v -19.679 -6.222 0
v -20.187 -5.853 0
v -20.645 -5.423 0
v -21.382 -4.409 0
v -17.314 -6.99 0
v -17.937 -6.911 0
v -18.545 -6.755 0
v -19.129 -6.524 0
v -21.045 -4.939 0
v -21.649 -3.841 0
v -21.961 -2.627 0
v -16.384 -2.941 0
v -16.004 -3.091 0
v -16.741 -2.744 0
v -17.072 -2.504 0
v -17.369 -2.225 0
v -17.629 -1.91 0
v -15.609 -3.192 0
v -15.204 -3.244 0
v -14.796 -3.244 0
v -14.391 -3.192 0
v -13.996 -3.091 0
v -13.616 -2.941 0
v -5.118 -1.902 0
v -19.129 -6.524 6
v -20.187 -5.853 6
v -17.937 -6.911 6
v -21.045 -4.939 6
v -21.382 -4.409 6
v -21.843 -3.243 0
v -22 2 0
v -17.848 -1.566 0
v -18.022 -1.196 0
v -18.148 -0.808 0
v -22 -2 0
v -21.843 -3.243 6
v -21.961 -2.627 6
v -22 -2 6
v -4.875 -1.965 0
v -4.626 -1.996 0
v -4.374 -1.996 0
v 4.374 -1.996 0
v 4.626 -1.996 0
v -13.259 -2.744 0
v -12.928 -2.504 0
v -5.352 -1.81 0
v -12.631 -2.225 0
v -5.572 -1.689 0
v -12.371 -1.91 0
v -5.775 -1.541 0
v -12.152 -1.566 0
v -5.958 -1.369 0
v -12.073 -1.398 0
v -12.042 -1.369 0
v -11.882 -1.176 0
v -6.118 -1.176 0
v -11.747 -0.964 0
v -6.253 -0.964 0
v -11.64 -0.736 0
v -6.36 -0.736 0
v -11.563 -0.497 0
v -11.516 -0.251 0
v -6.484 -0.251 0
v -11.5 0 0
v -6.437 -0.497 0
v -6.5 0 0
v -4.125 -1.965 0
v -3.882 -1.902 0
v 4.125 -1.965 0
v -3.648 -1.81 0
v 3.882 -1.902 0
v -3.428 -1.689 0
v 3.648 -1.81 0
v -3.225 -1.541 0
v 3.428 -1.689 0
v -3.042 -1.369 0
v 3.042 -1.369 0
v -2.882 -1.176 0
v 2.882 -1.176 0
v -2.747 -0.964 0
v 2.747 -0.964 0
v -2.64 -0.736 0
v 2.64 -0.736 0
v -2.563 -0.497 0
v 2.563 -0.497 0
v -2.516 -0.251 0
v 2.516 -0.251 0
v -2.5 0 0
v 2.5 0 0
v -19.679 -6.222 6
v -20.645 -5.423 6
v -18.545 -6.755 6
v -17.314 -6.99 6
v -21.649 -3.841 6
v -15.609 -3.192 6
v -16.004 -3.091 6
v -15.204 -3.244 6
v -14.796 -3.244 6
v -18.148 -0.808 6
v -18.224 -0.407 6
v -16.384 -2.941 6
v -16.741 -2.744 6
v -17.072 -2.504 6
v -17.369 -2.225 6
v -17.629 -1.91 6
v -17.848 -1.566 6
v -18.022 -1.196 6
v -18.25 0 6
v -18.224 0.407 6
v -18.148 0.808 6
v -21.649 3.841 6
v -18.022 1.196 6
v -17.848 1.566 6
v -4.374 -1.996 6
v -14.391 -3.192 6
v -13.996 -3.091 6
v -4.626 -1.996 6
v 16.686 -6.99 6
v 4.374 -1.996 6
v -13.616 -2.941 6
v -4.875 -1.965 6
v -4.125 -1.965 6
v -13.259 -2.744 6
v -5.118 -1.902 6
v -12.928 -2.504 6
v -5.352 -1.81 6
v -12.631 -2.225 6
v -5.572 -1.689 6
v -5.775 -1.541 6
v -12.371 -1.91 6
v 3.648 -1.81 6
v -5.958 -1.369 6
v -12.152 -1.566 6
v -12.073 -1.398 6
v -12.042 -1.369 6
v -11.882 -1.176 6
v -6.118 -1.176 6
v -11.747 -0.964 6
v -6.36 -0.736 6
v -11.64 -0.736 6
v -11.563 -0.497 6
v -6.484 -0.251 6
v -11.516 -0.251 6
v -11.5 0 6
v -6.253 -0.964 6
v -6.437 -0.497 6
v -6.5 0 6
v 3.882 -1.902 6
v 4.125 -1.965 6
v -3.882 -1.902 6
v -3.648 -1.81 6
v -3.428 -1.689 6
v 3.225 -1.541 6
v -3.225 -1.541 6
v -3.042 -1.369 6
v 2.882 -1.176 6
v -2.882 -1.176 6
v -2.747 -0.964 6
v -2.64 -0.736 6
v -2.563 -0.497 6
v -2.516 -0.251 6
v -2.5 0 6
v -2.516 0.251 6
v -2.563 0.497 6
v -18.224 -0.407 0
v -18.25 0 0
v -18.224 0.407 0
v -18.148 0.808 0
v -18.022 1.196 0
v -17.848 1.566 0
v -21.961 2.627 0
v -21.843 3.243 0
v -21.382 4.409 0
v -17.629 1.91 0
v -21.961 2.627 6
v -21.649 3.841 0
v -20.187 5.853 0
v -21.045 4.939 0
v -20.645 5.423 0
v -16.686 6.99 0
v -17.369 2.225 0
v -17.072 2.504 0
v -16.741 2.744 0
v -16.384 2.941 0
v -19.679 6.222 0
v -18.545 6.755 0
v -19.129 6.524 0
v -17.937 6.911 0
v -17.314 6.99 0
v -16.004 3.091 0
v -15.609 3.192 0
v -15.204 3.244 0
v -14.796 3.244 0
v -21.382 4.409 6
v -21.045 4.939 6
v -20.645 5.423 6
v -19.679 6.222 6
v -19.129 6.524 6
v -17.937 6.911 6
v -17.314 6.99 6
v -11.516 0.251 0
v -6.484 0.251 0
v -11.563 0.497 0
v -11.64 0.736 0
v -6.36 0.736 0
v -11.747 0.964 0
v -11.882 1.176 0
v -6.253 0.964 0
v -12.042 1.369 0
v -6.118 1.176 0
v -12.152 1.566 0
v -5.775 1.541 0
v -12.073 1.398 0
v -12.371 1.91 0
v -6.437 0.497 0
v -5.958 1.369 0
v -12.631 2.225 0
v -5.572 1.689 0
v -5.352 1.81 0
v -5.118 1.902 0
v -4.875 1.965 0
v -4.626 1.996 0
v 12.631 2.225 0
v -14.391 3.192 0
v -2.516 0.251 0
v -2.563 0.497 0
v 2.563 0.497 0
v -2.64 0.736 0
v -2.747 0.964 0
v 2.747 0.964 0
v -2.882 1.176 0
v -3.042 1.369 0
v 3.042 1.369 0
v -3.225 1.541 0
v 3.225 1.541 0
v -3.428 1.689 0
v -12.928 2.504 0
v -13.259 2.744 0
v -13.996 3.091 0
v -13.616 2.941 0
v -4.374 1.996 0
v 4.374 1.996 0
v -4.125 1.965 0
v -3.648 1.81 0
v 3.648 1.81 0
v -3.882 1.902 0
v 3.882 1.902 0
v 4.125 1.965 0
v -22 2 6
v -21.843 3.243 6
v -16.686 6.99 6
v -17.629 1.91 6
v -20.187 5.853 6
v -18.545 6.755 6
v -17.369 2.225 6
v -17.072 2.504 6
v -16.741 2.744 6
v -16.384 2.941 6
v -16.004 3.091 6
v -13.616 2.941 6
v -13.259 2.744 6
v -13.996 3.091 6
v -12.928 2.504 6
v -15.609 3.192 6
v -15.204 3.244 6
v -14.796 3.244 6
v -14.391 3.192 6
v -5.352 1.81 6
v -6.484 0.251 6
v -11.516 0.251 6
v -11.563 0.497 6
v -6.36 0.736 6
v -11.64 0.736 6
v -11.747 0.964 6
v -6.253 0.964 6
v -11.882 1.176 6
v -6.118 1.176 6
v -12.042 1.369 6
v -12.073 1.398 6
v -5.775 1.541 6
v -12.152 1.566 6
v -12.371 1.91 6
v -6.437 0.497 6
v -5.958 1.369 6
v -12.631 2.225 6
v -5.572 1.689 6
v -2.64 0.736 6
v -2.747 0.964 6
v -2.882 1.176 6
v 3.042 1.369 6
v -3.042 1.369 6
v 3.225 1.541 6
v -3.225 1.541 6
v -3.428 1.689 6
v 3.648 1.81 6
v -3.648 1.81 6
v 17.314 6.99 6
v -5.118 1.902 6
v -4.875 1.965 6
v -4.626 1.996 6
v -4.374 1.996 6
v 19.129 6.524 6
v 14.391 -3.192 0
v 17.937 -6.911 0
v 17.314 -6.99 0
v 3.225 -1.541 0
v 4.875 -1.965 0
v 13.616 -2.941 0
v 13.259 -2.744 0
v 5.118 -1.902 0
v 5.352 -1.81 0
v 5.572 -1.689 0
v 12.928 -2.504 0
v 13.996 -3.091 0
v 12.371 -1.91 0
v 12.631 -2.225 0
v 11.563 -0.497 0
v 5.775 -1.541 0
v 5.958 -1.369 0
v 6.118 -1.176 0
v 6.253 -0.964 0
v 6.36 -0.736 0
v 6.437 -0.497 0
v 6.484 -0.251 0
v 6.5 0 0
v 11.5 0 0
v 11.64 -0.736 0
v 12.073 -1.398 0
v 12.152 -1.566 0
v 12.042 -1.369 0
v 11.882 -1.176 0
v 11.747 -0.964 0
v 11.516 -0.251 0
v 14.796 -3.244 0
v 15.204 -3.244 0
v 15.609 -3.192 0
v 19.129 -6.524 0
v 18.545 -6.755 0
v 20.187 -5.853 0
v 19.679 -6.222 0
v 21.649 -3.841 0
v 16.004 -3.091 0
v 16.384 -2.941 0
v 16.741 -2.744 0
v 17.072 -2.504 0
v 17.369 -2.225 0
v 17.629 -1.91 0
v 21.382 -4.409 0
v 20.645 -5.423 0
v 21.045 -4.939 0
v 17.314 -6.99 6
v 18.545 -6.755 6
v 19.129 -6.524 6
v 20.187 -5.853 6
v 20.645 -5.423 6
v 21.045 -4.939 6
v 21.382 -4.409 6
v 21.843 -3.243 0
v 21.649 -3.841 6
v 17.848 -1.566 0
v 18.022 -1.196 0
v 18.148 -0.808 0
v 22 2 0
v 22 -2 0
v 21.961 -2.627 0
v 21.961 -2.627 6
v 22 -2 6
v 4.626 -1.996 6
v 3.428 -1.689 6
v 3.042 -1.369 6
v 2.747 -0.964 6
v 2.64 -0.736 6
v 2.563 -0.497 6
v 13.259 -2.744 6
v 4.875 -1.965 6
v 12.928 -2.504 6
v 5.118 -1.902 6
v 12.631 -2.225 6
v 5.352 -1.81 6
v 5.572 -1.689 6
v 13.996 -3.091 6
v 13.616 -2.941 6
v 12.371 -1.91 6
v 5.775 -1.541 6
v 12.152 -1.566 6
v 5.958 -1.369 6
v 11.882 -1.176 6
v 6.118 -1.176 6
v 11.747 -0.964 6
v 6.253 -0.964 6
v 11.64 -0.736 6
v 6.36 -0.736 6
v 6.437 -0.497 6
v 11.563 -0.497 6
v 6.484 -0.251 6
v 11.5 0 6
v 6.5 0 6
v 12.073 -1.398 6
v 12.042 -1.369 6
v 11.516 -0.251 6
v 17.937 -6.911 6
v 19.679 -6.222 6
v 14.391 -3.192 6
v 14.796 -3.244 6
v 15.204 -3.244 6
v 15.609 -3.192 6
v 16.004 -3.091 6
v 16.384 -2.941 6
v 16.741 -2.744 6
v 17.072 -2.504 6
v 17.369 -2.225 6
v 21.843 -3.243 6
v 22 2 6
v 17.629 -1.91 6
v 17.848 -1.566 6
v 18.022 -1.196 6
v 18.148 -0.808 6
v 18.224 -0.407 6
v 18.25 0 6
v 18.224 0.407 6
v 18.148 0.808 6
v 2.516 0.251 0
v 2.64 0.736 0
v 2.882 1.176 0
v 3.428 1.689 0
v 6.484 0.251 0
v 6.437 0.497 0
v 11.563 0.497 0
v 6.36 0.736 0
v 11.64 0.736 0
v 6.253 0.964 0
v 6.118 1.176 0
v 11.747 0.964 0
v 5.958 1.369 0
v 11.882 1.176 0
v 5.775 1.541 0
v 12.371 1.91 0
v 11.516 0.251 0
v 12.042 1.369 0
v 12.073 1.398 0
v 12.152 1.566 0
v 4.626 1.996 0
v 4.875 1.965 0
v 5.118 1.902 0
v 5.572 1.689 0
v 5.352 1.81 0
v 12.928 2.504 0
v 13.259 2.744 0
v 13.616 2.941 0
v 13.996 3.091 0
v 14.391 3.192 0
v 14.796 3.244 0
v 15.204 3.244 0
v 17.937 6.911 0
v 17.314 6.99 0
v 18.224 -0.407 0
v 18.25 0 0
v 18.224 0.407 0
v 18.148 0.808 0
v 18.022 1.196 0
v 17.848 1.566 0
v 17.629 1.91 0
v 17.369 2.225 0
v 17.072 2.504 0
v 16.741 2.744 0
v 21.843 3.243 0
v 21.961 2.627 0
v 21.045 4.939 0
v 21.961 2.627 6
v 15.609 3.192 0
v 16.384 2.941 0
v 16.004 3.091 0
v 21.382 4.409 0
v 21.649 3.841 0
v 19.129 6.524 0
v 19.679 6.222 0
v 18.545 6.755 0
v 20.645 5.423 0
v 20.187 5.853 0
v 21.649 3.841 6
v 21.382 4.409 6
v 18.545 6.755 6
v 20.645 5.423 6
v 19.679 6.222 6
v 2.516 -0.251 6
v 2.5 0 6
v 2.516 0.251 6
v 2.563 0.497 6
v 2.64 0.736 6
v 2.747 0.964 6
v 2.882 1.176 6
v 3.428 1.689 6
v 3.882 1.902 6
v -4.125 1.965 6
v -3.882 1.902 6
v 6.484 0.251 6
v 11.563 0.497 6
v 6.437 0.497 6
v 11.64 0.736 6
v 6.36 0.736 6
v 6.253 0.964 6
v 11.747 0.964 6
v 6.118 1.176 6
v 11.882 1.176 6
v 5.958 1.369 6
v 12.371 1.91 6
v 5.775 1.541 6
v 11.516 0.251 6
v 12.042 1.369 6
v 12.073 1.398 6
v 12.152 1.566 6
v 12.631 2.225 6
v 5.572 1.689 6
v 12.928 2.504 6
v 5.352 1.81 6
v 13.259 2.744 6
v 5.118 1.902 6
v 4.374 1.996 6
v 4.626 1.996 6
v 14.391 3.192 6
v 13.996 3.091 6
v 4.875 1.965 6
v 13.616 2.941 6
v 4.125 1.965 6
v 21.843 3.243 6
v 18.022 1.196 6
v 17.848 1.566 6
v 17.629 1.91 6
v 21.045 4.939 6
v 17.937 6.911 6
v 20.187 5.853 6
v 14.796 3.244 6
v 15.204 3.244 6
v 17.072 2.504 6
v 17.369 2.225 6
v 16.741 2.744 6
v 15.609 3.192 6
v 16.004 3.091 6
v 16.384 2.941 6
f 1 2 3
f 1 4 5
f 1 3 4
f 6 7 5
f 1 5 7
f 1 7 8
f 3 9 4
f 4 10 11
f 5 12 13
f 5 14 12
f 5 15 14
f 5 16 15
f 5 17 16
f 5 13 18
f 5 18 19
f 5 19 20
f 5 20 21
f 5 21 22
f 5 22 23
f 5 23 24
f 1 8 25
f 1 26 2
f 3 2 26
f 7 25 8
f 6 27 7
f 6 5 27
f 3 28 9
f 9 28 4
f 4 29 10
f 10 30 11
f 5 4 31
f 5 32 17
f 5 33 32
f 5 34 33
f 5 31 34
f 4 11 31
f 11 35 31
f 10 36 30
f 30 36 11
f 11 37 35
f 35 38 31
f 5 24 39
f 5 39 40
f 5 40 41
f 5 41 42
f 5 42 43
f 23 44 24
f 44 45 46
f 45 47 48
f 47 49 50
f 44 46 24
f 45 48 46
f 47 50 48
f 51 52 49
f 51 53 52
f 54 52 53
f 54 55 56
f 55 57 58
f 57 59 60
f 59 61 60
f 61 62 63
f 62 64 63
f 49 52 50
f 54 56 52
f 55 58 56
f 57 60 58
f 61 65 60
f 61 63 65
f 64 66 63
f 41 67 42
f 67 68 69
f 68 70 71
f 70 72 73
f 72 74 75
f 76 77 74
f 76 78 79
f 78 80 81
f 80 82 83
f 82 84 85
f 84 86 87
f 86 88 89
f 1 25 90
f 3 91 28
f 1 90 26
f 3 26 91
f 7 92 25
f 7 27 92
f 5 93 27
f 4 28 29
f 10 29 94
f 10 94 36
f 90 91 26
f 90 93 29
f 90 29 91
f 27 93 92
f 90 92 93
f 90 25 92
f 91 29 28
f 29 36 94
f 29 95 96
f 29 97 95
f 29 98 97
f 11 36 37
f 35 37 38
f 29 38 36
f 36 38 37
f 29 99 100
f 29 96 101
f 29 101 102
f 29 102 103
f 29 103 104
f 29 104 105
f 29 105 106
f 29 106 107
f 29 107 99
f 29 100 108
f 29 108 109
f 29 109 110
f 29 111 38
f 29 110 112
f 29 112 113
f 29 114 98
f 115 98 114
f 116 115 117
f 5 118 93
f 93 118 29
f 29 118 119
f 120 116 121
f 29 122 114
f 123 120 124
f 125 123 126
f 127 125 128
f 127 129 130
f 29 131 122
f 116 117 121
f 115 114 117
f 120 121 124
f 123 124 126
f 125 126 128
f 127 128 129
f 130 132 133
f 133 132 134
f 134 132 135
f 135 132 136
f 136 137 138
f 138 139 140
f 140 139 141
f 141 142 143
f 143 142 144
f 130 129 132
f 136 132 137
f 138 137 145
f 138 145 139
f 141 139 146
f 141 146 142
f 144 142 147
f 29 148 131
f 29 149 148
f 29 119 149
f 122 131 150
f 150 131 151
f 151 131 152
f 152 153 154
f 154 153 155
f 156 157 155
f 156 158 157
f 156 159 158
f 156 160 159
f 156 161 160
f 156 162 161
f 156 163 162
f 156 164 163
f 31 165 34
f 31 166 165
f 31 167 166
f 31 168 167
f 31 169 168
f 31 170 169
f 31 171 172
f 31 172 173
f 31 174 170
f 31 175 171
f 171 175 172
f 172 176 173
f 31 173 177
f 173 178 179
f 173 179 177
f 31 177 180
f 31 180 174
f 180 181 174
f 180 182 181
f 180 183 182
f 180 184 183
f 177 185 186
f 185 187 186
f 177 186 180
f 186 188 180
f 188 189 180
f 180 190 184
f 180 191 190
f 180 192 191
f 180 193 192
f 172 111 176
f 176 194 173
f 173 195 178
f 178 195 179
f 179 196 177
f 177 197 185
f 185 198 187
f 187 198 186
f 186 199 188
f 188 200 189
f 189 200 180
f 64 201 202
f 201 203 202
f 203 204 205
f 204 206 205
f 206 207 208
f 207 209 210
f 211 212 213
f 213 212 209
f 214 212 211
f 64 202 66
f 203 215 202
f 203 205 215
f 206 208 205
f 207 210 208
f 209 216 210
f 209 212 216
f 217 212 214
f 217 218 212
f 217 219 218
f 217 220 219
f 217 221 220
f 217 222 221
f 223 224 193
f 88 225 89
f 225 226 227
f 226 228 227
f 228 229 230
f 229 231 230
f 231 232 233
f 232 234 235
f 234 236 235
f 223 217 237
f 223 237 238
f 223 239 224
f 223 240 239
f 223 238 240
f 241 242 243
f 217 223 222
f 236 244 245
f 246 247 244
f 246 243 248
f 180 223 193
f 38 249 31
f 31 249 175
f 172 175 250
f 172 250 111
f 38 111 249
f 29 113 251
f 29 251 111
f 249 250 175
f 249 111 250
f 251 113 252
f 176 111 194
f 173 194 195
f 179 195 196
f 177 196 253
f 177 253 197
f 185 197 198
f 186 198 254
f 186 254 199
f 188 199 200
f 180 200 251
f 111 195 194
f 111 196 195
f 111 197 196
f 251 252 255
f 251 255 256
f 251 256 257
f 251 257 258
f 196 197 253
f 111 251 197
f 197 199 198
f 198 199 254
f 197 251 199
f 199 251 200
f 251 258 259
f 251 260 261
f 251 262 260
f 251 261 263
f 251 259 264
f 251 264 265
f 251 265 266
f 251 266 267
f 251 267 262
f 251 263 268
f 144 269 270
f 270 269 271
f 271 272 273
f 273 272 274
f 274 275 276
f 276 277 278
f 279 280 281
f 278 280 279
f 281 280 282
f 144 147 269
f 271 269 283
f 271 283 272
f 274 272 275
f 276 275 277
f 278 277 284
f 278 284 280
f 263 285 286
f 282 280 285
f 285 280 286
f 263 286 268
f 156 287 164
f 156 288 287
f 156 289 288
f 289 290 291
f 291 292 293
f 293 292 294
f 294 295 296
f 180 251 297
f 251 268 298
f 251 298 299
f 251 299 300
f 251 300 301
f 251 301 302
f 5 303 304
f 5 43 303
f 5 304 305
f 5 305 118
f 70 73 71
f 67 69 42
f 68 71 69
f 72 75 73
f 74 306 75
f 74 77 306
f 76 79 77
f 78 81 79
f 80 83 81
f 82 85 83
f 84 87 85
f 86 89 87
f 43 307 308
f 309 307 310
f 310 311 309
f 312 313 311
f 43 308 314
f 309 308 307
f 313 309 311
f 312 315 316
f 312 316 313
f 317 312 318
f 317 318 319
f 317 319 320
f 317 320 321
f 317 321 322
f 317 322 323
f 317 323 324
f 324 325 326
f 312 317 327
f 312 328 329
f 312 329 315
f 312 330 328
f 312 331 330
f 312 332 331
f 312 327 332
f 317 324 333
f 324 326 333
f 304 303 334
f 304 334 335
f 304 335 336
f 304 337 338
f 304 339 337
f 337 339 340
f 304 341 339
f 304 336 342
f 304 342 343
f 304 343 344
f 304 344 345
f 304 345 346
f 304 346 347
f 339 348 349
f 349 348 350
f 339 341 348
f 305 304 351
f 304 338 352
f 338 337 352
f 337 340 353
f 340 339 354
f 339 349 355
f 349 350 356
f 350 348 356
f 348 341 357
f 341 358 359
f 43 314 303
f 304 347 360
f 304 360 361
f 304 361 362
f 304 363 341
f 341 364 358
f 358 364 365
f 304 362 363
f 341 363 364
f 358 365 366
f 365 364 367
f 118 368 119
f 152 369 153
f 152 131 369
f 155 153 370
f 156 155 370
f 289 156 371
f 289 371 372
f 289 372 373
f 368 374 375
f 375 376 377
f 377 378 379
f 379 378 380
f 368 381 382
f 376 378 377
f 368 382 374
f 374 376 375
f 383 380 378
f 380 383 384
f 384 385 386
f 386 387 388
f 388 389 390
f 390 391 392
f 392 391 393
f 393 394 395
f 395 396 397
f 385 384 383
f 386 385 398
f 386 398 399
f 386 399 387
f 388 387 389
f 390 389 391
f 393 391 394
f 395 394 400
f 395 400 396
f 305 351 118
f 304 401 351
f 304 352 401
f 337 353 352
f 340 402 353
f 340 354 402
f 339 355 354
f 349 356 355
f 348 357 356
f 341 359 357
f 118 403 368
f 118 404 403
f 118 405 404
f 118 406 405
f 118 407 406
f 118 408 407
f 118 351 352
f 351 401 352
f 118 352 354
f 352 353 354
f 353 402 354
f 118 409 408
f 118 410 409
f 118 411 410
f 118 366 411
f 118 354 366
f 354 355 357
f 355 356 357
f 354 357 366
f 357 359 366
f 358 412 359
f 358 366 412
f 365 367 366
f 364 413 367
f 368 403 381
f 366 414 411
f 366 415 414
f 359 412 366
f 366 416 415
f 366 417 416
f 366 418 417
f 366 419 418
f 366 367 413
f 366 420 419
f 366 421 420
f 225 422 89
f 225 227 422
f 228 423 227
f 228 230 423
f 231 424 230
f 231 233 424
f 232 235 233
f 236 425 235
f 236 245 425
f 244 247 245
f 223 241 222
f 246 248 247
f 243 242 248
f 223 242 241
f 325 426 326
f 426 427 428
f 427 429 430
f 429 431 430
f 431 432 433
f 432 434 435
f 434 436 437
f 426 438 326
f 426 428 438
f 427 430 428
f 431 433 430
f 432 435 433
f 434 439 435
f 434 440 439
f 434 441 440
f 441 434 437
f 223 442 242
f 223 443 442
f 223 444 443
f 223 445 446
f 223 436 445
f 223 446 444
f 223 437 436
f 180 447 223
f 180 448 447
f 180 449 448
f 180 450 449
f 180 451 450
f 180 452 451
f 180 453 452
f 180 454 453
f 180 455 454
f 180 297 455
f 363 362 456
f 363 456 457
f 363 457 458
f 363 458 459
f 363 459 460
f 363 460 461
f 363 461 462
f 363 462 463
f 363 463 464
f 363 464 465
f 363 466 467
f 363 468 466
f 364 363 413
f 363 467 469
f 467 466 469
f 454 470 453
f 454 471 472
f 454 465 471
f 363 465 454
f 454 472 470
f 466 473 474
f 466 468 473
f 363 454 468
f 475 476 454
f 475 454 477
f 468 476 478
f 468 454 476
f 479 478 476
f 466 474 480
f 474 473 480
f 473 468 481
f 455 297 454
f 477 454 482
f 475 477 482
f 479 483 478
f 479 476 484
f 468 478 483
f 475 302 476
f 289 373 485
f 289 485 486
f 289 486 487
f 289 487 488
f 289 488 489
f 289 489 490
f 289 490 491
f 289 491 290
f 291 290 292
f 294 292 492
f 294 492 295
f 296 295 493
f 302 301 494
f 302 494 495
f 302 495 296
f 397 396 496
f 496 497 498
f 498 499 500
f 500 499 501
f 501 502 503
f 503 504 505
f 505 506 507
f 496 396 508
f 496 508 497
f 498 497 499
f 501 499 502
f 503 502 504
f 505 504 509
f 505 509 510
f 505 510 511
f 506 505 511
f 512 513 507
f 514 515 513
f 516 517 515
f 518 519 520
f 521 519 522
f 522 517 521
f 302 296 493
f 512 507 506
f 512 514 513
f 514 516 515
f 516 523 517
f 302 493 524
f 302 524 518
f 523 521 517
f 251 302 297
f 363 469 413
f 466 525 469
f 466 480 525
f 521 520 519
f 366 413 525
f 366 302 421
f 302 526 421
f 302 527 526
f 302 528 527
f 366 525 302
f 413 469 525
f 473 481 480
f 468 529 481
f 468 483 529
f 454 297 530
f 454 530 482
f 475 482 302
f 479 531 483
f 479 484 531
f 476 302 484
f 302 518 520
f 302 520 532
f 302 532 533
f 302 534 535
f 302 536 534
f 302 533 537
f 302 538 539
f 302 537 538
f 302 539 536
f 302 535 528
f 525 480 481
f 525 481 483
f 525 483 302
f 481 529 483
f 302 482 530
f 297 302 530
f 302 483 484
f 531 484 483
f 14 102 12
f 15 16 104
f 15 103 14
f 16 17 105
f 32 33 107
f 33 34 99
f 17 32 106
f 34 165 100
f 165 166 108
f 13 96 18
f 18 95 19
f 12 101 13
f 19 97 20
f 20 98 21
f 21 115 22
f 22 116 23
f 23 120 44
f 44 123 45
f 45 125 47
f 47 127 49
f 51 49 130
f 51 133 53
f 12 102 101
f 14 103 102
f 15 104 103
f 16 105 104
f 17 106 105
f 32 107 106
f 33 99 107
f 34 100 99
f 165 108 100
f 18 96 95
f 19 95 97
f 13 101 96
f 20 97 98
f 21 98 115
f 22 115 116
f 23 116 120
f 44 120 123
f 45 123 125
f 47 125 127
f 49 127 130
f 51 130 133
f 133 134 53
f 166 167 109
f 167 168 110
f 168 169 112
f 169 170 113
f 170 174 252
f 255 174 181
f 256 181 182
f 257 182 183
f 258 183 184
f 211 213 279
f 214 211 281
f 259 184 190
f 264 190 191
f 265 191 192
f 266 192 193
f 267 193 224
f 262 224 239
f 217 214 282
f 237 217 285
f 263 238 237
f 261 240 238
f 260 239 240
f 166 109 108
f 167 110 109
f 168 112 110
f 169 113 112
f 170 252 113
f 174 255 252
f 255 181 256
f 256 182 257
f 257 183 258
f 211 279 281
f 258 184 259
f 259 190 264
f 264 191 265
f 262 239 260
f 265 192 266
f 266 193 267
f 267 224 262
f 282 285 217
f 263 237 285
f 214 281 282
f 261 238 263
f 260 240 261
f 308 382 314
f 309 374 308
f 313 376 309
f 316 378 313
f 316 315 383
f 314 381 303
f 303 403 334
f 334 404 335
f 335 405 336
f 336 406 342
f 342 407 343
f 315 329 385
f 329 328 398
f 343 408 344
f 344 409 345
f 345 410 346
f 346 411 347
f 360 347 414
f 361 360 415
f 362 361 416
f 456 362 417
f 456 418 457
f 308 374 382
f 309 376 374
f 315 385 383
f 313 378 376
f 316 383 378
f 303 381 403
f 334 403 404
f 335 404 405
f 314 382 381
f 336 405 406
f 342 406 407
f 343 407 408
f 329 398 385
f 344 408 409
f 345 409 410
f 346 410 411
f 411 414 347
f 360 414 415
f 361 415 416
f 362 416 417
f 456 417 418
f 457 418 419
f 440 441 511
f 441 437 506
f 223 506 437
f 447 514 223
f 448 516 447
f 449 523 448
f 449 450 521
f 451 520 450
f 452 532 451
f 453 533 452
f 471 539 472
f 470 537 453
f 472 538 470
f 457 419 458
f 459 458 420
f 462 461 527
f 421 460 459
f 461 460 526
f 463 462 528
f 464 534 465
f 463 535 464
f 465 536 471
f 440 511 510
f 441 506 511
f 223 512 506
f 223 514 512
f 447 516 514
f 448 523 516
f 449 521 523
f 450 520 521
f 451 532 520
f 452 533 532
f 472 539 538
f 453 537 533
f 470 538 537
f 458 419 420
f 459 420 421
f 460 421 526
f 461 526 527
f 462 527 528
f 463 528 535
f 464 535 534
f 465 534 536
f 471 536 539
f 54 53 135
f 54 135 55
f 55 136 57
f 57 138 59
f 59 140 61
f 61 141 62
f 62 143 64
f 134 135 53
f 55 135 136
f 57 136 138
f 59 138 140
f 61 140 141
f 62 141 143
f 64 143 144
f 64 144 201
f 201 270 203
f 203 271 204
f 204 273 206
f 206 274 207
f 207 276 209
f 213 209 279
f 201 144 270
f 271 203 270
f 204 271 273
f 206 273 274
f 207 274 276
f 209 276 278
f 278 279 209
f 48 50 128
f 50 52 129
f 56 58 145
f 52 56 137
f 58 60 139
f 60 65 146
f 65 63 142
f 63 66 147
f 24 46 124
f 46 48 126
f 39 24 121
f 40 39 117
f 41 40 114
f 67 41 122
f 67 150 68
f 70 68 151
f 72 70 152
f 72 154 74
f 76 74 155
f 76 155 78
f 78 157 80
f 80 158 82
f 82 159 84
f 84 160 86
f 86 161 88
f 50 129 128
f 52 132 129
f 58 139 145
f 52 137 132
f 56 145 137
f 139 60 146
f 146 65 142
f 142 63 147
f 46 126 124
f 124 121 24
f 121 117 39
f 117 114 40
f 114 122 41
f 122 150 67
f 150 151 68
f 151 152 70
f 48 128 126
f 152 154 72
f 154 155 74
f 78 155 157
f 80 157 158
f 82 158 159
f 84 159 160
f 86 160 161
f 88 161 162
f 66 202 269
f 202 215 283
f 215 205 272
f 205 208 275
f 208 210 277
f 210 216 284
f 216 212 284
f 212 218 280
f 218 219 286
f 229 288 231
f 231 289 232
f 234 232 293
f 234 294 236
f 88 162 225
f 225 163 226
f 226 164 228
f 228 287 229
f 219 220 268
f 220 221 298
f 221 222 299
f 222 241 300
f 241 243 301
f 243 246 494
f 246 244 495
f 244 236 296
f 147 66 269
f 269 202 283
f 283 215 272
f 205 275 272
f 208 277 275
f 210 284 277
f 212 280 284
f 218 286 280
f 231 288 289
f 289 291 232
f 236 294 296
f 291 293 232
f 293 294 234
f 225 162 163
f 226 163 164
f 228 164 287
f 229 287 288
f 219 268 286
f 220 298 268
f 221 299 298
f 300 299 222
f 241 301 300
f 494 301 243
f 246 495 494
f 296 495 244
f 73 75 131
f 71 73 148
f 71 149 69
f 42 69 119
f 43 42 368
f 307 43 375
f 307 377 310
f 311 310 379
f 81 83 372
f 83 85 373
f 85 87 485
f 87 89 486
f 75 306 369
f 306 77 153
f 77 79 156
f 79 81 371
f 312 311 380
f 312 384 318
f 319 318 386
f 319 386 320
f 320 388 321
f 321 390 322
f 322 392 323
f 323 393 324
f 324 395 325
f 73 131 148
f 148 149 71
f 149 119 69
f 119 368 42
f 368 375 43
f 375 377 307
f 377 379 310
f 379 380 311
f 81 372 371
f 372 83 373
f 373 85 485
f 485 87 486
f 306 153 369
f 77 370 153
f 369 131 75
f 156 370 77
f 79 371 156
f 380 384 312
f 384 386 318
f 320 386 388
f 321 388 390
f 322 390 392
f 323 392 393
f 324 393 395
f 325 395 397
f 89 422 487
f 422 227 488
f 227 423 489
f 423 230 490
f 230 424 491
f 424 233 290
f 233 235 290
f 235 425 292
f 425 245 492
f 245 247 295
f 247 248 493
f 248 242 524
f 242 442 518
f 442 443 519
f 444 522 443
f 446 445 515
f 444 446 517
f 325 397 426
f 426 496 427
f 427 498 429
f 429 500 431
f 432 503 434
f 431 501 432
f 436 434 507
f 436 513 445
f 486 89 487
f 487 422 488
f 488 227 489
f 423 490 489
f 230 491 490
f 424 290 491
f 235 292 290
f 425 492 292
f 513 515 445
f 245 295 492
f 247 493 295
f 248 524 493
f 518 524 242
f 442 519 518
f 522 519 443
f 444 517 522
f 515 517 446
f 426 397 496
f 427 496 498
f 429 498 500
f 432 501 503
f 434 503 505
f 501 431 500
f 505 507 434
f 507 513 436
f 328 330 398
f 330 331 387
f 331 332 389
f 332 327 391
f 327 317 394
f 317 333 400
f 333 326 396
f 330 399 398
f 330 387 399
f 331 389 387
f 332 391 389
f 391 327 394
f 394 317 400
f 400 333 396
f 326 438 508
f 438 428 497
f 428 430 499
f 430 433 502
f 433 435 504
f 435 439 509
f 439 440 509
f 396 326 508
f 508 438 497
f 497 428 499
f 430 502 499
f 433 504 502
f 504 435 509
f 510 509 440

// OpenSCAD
$fn = 50;

difference() {
	union() {
		hull() {
			translate(v = [-17.0, 2.0, 0]) {
				cylinder(h = 6, r = 5);
			}
			translate(v = [17.0, 2.0, 0]) {
				cylinder(h = 6, r = 5);
			}
			translate(v = [-17.0, -2.0, 0]) {
				cylinder(h = 6, r = 5);
			}
			translate(v = [17.0, -2.0, 0]) {
				cylinder(h = 6, r = 5);
			}
		}
	}
	union() {
		translate(v = [-15.0, 0.0, -100.0]) {
			cylinder(h = 200, r = 3.25);
		}
		translate(v = [15.0, 0.0, -100.0]) {
			cylinder(h = 200, r = 3.25);
		}
		translate(v = [-15.0, 0.0, -100.0]) {
			cylinder(h = 200, r = 1.8);
		}
		translate(v = [15.0, 0.0, -100.0]) {
			cylinder(h = 200, r = 1.8);
		}
		translate(v = [-13.5, 0, 0.0]) {
			cylinder(h = 6, r = 2.0);
		}
		translate(v = [-4.5, 0, 0.0]) {
			cylinder(h = 6, r = 2.0);
		}
		translate(v = [4.5, 0, 0.0]) {
			cylinder(h = 6, r = 2.0);
		}
		translate(v = [13.5, 0, 0.0]) {
			cylinder(h = 6, r = 2.0);
		}
	}
}
